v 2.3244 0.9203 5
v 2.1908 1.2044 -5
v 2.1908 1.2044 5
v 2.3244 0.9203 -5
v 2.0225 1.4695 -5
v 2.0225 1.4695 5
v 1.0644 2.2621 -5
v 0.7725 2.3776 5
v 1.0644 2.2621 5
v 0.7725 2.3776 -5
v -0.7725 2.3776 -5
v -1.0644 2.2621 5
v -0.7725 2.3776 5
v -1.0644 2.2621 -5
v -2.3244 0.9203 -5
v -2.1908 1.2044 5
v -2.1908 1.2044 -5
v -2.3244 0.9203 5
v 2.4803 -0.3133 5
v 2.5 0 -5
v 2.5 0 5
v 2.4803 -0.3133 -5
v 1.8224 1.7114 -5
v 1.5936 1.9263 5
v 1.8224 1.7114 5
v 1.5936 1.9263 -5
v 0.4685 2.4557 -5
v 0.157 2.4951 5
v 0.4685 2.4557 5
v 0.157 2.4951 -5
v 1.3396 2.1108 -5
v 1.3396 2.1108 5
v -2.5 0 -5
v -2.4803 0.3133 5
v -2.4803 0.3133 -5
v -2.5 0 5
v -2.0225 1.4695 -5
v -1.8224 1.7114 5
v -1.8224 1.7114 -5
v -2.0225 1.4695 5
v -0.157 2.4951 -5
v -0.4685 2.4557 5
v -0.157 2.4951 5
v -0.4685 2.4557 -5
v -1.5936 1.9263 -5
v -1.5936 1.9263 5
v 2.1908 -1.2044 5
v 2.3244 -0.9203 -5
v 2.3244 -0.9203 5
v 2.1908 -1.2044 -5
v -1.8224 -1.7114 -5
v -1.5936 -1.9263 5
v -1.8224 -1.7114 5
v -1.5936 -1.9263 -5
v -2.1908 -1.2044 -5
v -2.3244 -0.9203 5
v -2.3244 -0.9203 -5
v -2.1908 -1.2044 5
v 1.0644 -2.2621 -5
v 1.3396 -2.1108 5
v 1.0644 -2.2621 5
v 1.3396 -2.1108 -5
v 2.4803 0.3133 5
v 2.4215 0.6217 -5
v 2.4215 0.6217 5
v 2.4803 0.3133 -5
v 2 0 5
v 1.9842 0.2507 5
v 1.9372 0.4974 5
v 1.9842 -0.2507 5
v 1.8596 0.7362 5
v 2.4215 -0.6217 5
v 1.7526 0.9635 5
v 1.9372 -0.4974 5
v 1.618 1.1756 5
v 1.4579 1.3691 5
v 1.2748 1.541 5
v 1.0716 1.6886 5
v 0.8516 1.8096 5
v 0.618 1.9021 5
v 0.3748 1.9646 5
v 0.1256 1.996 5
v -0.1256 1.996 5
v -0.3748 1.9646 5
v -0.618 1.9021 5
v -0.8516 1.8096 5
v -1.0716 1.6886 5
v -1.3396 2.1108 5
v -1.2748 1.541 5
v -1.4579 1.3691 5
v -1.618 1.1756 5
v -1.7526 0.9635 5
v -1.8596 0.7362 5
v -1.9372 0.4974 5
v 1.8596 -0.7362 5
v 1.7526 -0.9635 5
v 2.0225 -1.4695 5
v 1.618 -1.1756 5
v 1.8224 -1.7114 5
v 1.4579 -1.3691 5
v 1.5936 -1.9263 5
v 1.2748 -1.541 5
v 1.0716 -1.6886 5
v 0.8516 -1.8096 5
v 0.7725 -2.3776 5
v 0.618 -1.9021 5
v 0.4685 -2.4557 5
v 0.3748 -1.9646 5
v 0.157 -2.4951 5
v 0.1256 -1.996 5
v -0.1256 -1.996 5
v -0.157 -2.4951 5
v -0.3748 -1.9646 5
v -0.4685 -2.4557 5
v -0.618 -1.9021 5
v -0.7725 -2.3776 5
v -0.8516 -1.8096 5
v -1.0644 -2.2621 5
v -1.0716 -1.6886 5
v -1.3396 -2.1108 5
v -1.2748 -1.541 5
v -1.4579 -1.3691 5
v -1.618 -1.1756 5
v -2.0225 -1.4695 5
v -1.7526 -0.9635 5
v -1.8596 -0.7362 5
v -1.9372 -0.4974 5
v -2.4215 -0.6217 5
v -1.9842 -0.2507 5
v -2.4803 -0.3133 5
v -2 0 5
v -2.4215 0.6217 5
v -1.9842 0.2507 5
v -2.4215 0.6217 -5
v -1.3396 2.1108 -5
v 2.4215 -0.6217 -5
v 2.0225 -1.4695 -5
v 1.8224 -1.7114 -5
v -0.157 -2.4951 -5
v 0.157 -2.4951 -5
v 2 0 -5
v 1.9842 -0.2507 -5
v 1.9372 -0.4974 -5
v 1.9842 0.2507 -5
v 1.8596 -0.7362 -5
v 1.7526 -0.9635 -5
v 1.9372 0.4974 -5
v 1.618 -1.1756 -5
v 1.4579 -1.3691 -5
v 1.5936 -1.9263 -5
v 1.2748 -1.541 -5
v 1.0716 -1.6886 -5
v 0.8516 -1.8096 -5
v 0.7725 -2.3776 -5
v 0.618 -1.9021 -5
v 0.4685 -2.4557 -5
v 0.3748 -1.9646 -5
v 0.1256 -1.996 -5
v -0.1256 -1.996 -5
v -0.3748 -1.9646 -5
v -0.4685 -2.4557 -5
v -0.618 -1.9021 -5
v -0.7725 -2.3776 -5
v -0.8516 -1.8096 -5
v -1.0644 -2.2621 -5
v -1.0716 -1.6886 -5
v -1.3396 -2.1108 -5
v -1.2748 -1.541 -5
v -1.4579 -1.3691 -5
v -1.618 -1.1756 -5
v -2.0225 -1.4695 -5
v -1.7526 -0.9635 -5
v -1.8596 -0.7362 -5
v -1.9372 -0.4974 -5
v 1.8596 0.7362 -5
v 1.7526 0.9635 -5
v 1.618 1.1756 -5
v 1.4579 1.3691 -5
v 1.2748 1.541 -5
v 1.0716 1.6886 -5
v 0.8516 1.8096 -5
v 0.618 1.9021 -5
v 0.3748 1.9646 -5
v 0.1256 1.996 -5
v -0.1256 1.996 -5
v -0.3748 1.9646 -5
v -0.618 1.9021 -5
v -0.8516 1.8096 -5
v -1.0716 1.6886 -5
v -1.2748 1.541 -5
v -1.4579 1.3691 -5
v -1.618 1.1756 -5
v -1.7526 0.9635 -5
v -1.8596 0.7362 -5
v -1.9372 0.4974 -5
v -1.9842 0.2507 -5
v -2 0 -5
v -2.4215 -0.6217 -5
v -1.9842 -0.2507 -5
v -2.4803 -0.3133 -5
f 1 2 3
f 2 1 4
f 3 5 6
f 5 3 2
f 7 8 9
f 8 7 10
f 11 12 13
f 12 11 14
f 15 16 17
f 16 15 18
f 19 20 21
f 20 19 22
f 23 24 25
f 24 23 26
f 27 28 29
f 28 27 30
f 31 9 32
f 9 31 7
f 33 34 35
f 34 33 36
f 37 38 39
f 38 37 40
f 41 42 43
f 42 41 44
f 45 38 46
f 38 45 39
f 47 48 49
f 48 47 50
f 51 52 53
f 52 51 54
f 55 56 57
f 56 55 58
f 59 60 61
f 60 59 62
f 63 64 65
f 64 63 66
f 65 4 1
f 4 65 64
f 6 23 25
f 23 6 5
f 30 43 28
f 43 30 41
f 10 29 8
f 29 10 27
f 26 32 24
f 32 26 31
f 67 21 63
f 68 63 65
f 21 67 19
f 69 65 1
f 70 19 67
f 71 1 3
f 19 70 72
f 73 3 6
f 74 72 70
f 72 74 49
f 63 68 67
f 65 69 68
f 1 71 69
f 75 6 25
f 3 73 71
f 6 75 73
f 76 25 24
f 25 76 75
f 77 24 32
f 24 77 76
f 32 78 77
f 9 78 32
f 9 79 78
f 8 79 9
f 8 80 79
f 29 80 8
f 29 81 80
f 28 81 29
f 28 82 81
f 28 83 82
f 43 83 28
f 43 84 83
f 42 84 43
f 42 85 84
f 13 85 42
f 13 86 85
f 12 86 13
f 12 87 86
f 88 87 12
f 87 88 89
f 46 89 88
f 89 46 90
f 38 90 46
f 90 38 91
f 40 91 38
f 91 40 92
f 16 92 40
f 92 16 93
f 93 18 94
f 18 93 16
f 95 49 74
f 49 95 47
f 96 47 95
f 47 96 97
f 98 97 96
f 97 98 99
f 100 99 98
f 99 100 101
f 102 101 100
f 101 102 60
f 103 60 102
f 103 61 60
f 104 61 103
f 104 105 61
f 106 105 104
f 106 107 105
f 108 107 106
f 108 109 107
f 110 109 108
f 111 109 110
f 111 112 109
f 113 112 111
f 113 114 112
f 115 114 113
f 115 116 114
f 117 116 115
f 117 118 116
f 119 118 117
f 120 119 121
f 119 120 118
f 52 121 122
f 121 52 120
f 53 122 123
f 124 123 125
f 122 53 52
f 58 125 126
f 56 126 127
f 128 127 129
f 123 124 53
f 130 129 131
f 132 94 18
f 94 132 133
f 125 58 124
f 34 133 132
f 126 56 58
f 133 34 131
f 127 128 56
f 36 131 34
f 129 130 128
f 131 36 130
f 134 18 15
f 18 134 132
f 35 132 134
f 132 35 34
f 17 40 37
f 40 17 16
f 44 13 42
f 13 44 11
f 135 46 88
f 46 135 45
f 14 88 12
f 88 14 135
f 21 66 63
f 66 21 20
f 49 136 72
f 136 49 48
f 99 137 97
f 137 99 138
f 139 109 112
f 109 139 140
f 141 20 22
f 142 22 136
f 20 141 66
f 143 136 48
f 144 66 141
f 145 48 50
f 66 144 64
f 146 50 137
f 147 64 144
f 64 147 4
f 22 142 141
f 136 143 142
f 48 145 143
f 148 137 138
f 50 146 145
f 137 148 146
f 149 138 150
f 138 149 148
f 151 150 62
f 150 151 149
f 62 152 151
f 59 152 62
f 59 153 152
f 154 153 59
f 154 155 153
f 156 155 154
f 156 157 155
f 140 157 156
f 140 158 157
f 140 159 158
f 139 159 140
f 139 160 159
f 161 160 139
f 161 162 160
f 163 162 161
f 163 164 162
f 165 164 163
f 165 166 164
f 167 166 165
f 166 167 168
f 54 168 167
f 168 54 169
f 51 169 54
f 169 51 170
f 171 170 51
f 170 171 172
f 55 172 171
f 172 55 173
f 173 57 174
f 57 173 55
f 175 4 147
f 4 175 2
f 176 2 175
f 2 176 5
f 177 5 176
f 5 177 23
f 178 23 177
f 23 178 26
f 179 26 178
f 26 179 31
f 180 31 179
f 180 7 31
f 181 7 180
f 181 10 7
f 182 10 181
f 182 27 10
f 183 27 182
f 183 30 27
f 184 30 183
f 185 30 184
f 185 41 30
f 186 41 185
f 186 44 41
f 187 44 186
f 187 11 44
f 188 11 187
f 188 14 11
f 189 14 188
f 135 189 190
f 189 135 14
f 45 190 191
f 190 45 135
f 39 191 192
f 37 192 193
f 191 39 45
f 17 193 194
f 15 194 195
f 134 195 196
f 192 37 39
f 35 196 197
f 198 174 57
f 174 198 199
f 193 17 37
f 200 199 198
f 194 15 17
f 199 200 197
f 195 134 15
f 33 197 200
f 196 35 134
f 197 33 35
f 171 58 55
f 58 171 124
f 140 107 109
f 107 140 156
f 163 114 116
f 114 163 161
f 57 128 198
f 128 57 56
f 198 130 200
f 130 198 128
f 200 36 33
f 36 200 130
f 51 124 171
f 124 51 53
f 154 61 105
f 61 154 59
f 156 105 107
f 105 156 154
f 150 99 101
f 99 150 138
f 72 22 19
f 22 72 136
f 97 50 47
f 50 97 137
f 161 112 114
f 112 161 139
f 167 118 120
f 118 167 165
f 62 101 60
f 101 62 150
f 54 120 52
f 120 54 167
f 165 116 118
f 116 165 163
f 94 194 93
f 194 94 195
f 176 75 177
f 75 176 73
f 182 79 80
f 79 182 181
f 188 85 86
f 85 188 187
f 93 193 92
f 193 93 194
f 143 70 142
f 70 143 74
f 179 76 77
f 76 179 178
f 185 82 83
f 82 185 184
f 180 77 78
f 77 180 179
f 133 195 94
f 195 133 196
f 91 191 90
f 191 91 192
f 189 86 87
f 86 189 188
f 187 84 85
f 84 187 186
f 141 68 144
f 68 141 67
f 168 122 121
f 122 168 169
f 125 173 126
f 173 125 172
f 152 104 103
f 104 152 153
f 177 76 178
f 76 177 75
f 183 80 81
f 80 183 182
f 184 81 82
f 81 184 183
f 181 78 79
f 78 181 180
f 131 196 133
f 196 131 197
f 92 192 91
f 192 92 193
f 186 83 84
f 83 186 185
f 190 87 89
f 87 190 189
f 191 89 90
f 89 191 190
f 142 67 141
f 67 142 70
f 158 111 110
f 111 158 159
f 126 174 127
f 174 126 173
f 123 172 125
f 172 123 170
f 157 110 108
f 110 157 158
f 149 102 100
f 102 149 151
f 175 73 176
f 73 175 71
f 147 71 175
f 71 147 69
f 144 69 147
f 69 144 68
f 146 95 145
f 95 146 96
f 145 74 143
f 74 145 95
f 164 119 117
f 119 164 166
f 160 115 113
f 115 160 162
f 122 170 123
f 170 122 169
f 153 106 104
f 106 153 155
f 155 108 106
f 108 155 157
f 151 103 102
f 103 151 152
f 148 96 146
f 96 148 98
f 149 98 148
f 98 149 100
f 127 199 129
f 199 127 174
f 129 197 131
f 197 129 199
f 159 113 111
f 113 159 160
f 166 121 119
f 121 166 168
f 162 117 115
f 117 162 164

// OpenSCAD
$fn = 50;


difference() {
	union() {
		translate(v = [0, 0, -5.0000000000]) {
			cylinder(h = 10, r = 2.5000000000);
		}
	}
	union() {
		translate(v = [0, 0, -100.0000000000]) {
			cylinder(h = 200, r = 2);
		}
	}
}
